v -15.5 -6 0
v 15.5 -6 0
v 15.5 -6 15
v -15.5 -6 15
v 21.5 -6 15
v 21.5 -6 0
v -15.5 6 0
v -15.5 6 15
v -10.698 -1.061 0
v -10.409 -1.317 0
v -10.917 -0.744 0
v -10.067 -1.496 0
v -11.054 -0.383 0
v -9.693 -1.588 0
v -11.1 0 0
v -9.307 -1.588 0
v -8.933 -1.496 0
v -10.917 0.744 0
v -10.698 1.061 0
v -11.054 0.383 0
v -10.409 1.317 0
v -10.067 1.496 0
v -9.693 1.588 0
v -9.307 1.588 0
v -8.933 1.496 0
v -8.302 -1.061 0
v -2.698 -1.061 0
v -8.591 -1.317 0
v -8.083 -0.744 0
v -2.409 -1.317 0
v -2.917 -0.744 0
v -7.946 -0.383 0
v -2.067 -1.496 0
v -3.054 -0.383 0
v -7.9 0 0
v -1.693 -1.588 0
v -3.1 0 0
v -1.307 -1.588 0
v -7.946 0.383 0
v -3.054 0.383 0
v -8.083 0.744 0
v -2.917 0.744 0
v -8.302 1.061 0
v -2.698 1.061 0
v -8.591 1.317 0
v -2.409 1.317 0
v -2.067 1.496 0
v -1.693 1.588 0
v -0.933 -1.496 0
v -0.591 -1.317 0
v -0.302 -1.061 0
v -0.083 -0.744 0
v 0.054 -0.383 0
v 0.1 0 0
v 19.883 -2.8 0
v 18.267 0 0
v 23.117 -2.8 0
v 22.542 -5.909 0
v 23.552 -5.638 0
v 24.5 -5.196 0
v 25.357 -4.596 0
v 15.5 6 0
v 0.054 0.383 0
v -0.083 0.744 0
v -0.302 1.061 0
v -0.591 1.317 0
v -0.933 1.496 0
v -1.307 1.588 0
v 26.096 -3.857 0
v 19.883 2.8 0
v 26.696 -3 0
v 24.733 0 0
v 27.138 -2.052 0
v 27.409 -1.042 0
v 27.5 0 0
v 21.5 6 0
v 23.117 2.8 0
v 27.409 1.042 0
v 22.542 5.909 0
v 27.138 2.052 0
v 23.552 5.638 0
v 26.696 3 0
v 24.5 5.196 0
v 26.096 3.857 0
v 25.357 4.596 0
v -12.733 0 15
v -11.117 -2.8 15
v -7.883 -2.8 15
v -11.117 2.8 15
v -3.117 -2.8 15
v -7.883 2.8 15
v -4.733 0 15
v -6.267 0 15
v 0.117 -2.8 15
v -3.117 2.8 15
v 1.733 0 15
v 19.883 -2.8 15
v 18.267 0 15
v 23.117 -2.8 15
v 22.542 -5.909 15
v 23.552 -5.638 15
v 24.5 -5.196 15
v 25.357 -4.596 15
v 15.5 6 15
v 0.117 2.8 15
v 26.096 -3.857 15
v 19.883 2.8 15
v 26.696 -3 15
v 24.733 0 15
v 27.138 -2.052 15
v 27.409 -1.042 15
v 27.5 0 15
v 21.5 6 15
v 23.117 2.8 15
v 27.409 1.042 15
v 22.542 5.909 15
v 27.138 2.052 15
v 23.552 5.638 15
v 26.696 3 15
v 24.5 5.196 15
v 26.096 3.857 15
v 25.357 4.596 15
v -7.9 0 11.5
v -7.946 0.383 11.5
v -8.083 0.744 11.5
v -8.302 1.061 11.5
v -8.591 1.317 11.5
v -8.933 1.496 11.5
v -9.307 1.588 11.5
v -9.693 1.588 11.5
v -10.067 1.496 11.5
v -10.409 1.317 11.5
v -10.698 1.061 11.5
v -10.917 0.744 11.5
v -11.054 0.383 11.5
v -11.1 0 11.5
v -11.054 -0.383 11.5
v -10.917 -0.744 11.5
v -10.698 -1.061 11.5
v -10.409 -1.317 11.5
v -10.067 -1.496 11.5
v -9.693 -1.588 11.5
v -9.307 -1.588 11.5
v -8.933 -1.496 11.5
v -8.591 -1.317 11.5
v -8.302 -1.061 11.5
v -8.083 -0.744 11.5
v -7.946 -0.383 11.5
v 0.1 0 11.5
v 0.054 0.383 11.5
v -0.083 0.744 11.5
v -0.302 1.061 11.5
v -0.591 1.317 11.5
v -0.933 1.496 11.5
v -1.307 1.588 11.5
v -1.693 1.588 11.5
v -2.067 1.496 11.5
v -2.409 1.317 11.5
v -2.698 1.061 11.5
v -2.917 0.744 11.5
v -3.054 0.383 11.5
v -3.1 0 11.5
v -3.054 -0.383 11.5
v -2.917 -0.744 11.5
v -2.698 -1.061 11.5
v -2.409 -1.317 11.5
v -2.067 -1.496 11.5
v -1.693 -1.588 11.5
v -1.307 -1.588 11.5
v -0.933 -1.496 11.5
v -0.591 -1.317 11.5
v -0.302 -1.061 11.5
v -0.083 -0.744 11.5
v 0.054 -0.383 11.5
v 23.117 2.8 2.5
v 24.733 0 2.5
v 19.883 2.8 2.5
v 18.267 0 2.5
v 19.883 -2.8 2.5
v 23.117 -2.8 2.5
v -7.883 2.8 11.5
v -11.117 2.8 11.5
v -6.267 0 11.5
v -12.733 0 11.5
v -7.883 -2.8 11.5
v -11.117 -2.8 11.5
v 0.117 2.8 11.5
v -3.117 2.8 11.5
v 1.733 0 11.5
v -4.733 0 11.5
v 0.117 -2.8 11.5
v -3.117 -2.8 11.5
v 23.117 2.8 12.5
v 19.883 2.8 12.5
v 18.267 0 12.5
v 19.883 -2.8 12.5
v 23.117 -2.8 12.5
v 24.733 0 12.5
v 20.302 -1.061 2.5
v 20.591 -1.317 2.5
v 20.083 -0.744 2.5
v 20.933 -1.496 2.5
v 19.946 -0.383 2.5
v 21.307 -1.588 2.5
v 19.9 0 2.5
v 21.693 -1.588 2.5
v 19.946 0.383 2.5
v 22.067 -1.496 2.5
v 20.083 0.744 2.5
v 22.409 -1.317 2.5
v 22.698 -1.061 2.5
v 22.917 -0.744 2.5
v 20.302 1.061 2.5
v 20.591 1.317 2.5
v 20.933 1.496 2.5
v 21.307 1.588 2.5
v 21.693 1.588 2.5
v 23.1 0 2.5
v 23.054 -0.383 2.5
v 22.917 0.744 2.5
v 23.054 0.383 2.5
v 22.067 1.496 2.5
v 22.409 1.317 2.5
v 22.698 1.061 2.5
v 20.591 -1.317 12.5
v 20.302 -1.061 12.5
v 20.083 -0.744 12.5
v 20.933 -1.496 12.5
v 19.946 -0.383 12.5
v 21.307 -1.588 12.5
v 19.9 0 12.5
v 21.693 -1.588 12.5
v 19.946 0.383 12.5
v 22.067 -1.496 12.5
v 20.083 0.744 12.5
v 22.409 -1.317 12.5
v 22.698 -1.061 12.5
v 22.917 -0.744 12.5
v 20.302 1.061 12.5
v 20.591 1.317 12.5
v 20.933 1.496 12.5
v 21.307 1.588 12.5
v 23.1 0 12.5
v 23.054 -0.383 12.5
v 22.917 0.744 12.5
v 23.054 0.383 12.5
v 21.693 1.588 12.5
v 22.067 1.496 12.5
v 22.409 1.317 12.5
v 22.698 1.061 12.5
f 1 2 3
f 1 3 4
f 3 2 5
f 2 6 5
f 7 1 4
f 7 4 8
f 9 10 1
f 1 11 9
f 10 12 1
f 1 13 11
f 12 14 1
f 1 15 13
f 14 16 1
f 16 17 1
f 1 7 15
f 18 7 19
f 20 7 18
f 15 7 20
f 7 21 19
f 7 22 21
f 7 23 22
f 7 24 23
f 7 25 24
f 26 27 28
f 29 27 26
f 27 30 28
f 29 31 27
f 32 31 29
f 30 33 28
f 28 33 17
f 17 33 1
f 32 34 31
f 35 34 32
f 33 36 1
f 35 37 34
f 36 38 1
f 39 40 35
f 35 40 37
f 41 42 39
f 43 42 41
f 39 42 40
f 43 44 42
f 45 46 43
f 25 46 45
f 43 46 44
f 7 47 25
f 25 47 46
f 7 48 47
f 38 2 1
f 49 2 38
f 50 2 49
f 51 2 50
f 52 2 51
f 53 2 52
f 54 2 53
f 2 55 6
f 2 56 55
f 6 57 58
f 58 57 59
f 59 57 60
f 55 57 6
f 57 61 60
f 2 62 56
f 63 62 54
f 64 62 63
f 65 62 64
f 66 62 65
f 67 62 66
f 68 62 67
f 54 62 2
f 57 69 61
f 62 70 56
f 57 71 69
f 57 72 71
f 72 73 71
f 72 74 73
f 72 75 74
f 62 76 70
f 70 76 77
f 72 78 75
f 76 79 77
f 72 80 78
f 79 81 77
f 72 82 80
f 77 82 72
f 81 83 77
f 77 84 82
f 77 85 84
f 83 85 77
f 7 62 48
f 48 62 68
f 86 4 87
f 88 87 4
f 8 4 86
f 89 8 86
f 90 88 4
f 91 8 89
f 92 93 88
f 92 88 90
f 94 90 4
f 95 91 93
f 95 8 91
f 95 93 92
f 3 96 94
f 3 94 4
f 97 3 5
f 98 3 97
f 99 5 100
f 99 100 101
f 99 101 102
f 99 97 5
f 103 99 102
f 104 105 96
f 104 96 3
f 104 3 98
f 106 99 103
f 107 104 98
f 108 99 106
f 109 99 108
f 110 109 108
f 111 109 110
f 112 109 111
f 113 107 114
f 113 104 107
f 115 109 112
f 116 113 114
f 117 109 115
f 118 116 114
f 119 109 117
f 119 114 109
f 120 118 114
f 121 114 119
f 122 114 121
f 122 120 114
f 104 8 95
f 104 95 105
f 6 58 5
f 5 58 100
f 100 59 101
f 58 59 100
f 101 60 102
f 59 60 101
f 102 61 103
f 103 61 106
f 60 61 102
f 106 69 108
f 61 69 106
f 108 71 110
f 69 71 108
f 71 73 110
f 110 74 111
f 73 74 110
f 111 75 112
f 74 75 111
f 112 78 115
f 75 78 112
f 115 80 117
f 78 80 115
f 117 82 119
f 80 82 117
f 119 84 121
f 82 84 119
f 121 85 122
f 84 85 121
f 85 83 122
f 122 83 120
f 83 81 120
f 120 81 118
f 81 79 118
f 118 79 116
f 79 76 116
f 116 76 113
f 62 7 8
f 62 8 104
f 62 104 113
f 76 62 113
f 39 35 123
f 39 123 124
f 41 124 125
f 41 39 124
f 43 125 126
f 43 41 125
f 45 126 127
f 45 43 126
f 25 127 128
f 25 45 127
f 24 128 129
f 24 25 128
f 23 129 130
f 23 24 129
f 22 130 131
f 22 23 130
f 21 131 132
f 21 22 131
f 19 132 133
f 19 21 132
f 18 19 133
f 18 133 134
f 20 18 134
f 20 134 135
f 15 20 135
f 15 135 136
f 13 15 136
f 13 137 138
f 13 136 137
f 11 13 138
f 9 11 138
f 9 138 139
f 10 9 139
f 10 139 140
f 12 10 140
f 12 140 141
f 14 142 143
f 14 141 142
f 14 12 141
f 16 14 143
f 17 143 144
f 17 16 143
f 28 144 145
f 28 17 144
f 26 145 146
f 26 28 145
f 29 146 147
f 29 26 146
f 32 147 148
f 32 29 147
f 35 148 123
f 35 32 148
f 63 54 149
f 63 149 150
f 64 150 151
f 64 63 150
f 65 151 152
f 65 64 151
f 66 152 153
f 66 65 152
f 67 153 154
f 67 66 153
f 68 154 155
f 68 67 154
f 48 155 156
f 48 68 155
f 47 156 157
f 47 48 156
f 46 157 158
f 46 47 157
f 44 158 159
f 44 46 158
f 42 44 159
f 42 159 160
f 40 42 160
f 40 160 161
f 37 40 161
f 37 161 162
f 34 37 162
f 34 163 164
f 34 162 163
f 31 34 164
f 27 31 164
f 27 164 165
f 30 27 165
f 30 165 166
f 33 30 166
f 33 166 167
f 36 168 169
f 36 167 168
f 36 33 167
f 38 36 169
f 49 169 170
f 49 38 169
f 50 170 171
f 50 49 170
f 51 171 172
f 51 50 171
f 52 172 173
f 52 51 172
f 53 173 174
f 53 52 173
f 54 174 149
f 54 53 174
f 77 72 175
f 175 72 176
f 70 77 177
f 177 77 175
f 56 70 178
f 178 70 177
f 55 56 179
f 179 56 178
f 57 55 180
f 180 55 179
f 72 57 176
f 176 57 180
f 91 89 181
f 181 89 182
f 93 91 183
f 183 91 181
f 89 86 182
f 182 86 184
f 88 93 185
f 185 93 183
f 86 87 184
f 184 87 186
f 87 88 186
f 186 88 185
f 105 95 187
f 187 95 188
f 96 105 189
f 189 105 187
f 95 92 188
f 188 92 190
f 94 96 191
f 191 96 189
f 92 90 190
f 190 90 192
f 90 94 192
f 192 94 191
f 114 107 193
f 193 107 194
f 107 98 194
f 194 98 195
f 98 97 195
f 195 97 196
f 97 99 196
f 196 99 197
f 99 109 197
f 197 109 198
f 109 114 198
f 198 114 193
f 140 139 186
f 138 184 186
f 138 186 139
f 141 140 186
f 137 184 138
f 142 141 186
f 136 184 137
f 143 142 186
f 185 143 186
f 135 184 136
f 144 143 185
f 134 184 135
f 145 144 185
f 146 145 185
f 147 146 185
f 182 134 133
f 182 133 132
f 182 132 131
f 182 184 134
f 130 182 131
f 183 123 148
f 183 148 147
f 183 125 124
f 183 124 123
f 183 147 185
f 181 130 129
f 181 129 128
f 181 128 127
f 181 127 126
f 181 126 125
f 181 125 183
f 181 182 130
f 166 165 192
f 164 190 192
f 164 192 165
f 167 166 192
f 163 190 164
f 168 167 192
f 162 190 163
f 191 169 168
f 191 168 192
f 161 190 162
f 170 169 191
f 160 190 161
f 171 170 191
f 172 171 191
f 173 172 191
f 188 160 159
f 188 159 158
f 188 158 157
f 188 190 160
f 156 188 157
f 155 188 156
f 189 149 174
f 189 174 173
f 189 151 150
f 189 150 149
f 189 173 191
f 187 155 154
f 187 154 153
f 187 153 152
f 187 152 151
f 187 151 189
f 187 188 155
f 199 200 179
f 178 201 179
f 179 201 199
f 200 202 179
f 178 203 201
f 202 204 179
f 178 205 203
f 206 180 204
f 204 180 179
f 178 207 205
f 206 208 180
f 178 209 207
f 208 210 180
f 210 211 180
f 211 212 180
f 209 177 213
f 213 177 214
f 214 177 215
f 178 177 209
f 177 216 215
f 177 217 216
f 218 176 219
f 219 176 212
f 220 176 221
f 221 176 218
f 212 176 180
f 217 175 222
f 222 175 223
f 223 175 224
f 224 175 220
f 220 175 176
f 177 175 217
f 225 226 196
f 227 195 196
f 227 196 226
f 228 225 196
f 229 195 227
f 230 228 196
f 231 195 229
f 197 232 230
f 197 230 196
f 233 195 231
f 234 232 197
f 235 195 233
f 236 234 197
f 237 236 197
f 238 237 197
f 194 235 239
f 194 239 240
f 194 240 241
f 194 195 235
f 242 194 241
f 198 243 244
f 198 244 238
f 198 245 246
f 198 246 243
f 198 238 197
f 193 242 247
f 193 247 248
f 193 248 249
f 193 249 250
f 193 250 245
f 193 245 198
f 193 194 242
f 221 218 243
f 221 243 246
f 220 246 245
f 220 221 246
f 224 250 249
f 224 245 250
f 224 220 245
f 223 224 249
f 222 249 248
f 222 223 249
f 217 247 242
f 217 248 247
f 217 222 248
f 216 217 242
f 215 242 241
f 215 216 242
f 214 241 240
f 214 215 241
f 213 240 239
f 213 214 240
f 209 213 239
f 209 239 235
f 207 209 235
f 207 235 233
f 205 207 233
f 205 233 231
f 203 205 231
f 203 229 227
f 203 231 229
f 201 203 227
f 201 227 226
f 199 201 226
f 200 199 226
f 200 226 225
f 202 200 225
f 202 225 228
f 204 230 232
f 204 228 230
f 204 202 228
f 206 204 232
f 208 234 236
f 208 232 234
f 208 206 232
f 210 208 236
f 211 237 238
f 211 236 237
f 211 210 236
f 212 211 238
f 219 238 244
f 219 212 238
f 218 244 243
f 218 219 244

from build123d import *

# Parameters (mm, degrees)
SKETCH_R        = 1.6
PAD_DEPTH       = 15
POCKET_DEPTH    = 3.5
POCKET001_DEPTH = 2.5
POCKET002_DEPTH = 2.5


with BuildPart() as part:
    # Sketch → Pad (new body)
    with BuildSketch(Plane.XY):
        with BuildLine():
            Line((-15.5, 6), (15.5, 6))
            Line((15.5, 6), (21.5, 6))
            ThreePointArc((21.5, -6), (27.5, 0), (21.5, 6))
            Line((15.5, -6), (21.5, -6))
            Line((15.5, -6), (-15.5, -6))
            Line((-15.5, -6), (-15.5, 6))
        make_face()
        with Locations((-9.5, 0)):
            Circle(SKETCH_R, mode=Mode.SUBTRACT)
        with Locations((-1.5, 0)):
            Circle(SKETCH_R, mode=Mode.SUBTRACT)
        with Locations((21.5, 0)):
            Circle(SKETCH_R, mode=Mode.SUBTRACT)
    extrude(amount=PAD_DEPTH)

    # Sketch001 (on Face11 of Pad) → Pocket (cut)
    with BuildSketch(Plane.XY.offset(15)):
        Polygon((-7.883419, 2.8), (-11.116581, 2.8), (-12.733162, 0), (-11.116581, -2.8), (-7.883419, -2.8), (-6.266838, 0), align=None)
        Polygon((0.116581, 2.8), (-3.116581, 2.8), (-4.733162, 0), (-3.116581, -2.8), (0.116581, -2.8), (1.733162, 0), align=None)
    extrude(amount=-POCKET_DEPTH, mode=Mode.SUBTRACT)

    # Sketch002 (on Face5 of Pocket) → Pocket001 (cut)
    with BuildSketch(Plane.XY.offset(15)):
        Polygon((23.116581, 2.8), (19.883419, 2.8), (18.266838, 0), (19.883419, -2.8), (23.116581, -2.8), (24.733162, 0), align=None)
    extrude(amount=-POCKET001_DEPTH, mode=Mode.SUBTRACT)

    # Sketch003 (on Face4 of Pocket001) → Pocket002 (cut)
    with BuildSketch(Plane(origin=(0, 0, 0), x_dir=(1, 0, 0), z_dir=(0, 0, -1))):
        Polygon((24.733162, 0), (23.116581, 2.8), (19.883419, 2.8), (18.266838, 0), (19.883419, -2.8), (23.116581, -2.8), align=None)
    extrude(amount=-POCKET002_DEPTH, mode=Mode.SUBTRACT)


solid = part.part
